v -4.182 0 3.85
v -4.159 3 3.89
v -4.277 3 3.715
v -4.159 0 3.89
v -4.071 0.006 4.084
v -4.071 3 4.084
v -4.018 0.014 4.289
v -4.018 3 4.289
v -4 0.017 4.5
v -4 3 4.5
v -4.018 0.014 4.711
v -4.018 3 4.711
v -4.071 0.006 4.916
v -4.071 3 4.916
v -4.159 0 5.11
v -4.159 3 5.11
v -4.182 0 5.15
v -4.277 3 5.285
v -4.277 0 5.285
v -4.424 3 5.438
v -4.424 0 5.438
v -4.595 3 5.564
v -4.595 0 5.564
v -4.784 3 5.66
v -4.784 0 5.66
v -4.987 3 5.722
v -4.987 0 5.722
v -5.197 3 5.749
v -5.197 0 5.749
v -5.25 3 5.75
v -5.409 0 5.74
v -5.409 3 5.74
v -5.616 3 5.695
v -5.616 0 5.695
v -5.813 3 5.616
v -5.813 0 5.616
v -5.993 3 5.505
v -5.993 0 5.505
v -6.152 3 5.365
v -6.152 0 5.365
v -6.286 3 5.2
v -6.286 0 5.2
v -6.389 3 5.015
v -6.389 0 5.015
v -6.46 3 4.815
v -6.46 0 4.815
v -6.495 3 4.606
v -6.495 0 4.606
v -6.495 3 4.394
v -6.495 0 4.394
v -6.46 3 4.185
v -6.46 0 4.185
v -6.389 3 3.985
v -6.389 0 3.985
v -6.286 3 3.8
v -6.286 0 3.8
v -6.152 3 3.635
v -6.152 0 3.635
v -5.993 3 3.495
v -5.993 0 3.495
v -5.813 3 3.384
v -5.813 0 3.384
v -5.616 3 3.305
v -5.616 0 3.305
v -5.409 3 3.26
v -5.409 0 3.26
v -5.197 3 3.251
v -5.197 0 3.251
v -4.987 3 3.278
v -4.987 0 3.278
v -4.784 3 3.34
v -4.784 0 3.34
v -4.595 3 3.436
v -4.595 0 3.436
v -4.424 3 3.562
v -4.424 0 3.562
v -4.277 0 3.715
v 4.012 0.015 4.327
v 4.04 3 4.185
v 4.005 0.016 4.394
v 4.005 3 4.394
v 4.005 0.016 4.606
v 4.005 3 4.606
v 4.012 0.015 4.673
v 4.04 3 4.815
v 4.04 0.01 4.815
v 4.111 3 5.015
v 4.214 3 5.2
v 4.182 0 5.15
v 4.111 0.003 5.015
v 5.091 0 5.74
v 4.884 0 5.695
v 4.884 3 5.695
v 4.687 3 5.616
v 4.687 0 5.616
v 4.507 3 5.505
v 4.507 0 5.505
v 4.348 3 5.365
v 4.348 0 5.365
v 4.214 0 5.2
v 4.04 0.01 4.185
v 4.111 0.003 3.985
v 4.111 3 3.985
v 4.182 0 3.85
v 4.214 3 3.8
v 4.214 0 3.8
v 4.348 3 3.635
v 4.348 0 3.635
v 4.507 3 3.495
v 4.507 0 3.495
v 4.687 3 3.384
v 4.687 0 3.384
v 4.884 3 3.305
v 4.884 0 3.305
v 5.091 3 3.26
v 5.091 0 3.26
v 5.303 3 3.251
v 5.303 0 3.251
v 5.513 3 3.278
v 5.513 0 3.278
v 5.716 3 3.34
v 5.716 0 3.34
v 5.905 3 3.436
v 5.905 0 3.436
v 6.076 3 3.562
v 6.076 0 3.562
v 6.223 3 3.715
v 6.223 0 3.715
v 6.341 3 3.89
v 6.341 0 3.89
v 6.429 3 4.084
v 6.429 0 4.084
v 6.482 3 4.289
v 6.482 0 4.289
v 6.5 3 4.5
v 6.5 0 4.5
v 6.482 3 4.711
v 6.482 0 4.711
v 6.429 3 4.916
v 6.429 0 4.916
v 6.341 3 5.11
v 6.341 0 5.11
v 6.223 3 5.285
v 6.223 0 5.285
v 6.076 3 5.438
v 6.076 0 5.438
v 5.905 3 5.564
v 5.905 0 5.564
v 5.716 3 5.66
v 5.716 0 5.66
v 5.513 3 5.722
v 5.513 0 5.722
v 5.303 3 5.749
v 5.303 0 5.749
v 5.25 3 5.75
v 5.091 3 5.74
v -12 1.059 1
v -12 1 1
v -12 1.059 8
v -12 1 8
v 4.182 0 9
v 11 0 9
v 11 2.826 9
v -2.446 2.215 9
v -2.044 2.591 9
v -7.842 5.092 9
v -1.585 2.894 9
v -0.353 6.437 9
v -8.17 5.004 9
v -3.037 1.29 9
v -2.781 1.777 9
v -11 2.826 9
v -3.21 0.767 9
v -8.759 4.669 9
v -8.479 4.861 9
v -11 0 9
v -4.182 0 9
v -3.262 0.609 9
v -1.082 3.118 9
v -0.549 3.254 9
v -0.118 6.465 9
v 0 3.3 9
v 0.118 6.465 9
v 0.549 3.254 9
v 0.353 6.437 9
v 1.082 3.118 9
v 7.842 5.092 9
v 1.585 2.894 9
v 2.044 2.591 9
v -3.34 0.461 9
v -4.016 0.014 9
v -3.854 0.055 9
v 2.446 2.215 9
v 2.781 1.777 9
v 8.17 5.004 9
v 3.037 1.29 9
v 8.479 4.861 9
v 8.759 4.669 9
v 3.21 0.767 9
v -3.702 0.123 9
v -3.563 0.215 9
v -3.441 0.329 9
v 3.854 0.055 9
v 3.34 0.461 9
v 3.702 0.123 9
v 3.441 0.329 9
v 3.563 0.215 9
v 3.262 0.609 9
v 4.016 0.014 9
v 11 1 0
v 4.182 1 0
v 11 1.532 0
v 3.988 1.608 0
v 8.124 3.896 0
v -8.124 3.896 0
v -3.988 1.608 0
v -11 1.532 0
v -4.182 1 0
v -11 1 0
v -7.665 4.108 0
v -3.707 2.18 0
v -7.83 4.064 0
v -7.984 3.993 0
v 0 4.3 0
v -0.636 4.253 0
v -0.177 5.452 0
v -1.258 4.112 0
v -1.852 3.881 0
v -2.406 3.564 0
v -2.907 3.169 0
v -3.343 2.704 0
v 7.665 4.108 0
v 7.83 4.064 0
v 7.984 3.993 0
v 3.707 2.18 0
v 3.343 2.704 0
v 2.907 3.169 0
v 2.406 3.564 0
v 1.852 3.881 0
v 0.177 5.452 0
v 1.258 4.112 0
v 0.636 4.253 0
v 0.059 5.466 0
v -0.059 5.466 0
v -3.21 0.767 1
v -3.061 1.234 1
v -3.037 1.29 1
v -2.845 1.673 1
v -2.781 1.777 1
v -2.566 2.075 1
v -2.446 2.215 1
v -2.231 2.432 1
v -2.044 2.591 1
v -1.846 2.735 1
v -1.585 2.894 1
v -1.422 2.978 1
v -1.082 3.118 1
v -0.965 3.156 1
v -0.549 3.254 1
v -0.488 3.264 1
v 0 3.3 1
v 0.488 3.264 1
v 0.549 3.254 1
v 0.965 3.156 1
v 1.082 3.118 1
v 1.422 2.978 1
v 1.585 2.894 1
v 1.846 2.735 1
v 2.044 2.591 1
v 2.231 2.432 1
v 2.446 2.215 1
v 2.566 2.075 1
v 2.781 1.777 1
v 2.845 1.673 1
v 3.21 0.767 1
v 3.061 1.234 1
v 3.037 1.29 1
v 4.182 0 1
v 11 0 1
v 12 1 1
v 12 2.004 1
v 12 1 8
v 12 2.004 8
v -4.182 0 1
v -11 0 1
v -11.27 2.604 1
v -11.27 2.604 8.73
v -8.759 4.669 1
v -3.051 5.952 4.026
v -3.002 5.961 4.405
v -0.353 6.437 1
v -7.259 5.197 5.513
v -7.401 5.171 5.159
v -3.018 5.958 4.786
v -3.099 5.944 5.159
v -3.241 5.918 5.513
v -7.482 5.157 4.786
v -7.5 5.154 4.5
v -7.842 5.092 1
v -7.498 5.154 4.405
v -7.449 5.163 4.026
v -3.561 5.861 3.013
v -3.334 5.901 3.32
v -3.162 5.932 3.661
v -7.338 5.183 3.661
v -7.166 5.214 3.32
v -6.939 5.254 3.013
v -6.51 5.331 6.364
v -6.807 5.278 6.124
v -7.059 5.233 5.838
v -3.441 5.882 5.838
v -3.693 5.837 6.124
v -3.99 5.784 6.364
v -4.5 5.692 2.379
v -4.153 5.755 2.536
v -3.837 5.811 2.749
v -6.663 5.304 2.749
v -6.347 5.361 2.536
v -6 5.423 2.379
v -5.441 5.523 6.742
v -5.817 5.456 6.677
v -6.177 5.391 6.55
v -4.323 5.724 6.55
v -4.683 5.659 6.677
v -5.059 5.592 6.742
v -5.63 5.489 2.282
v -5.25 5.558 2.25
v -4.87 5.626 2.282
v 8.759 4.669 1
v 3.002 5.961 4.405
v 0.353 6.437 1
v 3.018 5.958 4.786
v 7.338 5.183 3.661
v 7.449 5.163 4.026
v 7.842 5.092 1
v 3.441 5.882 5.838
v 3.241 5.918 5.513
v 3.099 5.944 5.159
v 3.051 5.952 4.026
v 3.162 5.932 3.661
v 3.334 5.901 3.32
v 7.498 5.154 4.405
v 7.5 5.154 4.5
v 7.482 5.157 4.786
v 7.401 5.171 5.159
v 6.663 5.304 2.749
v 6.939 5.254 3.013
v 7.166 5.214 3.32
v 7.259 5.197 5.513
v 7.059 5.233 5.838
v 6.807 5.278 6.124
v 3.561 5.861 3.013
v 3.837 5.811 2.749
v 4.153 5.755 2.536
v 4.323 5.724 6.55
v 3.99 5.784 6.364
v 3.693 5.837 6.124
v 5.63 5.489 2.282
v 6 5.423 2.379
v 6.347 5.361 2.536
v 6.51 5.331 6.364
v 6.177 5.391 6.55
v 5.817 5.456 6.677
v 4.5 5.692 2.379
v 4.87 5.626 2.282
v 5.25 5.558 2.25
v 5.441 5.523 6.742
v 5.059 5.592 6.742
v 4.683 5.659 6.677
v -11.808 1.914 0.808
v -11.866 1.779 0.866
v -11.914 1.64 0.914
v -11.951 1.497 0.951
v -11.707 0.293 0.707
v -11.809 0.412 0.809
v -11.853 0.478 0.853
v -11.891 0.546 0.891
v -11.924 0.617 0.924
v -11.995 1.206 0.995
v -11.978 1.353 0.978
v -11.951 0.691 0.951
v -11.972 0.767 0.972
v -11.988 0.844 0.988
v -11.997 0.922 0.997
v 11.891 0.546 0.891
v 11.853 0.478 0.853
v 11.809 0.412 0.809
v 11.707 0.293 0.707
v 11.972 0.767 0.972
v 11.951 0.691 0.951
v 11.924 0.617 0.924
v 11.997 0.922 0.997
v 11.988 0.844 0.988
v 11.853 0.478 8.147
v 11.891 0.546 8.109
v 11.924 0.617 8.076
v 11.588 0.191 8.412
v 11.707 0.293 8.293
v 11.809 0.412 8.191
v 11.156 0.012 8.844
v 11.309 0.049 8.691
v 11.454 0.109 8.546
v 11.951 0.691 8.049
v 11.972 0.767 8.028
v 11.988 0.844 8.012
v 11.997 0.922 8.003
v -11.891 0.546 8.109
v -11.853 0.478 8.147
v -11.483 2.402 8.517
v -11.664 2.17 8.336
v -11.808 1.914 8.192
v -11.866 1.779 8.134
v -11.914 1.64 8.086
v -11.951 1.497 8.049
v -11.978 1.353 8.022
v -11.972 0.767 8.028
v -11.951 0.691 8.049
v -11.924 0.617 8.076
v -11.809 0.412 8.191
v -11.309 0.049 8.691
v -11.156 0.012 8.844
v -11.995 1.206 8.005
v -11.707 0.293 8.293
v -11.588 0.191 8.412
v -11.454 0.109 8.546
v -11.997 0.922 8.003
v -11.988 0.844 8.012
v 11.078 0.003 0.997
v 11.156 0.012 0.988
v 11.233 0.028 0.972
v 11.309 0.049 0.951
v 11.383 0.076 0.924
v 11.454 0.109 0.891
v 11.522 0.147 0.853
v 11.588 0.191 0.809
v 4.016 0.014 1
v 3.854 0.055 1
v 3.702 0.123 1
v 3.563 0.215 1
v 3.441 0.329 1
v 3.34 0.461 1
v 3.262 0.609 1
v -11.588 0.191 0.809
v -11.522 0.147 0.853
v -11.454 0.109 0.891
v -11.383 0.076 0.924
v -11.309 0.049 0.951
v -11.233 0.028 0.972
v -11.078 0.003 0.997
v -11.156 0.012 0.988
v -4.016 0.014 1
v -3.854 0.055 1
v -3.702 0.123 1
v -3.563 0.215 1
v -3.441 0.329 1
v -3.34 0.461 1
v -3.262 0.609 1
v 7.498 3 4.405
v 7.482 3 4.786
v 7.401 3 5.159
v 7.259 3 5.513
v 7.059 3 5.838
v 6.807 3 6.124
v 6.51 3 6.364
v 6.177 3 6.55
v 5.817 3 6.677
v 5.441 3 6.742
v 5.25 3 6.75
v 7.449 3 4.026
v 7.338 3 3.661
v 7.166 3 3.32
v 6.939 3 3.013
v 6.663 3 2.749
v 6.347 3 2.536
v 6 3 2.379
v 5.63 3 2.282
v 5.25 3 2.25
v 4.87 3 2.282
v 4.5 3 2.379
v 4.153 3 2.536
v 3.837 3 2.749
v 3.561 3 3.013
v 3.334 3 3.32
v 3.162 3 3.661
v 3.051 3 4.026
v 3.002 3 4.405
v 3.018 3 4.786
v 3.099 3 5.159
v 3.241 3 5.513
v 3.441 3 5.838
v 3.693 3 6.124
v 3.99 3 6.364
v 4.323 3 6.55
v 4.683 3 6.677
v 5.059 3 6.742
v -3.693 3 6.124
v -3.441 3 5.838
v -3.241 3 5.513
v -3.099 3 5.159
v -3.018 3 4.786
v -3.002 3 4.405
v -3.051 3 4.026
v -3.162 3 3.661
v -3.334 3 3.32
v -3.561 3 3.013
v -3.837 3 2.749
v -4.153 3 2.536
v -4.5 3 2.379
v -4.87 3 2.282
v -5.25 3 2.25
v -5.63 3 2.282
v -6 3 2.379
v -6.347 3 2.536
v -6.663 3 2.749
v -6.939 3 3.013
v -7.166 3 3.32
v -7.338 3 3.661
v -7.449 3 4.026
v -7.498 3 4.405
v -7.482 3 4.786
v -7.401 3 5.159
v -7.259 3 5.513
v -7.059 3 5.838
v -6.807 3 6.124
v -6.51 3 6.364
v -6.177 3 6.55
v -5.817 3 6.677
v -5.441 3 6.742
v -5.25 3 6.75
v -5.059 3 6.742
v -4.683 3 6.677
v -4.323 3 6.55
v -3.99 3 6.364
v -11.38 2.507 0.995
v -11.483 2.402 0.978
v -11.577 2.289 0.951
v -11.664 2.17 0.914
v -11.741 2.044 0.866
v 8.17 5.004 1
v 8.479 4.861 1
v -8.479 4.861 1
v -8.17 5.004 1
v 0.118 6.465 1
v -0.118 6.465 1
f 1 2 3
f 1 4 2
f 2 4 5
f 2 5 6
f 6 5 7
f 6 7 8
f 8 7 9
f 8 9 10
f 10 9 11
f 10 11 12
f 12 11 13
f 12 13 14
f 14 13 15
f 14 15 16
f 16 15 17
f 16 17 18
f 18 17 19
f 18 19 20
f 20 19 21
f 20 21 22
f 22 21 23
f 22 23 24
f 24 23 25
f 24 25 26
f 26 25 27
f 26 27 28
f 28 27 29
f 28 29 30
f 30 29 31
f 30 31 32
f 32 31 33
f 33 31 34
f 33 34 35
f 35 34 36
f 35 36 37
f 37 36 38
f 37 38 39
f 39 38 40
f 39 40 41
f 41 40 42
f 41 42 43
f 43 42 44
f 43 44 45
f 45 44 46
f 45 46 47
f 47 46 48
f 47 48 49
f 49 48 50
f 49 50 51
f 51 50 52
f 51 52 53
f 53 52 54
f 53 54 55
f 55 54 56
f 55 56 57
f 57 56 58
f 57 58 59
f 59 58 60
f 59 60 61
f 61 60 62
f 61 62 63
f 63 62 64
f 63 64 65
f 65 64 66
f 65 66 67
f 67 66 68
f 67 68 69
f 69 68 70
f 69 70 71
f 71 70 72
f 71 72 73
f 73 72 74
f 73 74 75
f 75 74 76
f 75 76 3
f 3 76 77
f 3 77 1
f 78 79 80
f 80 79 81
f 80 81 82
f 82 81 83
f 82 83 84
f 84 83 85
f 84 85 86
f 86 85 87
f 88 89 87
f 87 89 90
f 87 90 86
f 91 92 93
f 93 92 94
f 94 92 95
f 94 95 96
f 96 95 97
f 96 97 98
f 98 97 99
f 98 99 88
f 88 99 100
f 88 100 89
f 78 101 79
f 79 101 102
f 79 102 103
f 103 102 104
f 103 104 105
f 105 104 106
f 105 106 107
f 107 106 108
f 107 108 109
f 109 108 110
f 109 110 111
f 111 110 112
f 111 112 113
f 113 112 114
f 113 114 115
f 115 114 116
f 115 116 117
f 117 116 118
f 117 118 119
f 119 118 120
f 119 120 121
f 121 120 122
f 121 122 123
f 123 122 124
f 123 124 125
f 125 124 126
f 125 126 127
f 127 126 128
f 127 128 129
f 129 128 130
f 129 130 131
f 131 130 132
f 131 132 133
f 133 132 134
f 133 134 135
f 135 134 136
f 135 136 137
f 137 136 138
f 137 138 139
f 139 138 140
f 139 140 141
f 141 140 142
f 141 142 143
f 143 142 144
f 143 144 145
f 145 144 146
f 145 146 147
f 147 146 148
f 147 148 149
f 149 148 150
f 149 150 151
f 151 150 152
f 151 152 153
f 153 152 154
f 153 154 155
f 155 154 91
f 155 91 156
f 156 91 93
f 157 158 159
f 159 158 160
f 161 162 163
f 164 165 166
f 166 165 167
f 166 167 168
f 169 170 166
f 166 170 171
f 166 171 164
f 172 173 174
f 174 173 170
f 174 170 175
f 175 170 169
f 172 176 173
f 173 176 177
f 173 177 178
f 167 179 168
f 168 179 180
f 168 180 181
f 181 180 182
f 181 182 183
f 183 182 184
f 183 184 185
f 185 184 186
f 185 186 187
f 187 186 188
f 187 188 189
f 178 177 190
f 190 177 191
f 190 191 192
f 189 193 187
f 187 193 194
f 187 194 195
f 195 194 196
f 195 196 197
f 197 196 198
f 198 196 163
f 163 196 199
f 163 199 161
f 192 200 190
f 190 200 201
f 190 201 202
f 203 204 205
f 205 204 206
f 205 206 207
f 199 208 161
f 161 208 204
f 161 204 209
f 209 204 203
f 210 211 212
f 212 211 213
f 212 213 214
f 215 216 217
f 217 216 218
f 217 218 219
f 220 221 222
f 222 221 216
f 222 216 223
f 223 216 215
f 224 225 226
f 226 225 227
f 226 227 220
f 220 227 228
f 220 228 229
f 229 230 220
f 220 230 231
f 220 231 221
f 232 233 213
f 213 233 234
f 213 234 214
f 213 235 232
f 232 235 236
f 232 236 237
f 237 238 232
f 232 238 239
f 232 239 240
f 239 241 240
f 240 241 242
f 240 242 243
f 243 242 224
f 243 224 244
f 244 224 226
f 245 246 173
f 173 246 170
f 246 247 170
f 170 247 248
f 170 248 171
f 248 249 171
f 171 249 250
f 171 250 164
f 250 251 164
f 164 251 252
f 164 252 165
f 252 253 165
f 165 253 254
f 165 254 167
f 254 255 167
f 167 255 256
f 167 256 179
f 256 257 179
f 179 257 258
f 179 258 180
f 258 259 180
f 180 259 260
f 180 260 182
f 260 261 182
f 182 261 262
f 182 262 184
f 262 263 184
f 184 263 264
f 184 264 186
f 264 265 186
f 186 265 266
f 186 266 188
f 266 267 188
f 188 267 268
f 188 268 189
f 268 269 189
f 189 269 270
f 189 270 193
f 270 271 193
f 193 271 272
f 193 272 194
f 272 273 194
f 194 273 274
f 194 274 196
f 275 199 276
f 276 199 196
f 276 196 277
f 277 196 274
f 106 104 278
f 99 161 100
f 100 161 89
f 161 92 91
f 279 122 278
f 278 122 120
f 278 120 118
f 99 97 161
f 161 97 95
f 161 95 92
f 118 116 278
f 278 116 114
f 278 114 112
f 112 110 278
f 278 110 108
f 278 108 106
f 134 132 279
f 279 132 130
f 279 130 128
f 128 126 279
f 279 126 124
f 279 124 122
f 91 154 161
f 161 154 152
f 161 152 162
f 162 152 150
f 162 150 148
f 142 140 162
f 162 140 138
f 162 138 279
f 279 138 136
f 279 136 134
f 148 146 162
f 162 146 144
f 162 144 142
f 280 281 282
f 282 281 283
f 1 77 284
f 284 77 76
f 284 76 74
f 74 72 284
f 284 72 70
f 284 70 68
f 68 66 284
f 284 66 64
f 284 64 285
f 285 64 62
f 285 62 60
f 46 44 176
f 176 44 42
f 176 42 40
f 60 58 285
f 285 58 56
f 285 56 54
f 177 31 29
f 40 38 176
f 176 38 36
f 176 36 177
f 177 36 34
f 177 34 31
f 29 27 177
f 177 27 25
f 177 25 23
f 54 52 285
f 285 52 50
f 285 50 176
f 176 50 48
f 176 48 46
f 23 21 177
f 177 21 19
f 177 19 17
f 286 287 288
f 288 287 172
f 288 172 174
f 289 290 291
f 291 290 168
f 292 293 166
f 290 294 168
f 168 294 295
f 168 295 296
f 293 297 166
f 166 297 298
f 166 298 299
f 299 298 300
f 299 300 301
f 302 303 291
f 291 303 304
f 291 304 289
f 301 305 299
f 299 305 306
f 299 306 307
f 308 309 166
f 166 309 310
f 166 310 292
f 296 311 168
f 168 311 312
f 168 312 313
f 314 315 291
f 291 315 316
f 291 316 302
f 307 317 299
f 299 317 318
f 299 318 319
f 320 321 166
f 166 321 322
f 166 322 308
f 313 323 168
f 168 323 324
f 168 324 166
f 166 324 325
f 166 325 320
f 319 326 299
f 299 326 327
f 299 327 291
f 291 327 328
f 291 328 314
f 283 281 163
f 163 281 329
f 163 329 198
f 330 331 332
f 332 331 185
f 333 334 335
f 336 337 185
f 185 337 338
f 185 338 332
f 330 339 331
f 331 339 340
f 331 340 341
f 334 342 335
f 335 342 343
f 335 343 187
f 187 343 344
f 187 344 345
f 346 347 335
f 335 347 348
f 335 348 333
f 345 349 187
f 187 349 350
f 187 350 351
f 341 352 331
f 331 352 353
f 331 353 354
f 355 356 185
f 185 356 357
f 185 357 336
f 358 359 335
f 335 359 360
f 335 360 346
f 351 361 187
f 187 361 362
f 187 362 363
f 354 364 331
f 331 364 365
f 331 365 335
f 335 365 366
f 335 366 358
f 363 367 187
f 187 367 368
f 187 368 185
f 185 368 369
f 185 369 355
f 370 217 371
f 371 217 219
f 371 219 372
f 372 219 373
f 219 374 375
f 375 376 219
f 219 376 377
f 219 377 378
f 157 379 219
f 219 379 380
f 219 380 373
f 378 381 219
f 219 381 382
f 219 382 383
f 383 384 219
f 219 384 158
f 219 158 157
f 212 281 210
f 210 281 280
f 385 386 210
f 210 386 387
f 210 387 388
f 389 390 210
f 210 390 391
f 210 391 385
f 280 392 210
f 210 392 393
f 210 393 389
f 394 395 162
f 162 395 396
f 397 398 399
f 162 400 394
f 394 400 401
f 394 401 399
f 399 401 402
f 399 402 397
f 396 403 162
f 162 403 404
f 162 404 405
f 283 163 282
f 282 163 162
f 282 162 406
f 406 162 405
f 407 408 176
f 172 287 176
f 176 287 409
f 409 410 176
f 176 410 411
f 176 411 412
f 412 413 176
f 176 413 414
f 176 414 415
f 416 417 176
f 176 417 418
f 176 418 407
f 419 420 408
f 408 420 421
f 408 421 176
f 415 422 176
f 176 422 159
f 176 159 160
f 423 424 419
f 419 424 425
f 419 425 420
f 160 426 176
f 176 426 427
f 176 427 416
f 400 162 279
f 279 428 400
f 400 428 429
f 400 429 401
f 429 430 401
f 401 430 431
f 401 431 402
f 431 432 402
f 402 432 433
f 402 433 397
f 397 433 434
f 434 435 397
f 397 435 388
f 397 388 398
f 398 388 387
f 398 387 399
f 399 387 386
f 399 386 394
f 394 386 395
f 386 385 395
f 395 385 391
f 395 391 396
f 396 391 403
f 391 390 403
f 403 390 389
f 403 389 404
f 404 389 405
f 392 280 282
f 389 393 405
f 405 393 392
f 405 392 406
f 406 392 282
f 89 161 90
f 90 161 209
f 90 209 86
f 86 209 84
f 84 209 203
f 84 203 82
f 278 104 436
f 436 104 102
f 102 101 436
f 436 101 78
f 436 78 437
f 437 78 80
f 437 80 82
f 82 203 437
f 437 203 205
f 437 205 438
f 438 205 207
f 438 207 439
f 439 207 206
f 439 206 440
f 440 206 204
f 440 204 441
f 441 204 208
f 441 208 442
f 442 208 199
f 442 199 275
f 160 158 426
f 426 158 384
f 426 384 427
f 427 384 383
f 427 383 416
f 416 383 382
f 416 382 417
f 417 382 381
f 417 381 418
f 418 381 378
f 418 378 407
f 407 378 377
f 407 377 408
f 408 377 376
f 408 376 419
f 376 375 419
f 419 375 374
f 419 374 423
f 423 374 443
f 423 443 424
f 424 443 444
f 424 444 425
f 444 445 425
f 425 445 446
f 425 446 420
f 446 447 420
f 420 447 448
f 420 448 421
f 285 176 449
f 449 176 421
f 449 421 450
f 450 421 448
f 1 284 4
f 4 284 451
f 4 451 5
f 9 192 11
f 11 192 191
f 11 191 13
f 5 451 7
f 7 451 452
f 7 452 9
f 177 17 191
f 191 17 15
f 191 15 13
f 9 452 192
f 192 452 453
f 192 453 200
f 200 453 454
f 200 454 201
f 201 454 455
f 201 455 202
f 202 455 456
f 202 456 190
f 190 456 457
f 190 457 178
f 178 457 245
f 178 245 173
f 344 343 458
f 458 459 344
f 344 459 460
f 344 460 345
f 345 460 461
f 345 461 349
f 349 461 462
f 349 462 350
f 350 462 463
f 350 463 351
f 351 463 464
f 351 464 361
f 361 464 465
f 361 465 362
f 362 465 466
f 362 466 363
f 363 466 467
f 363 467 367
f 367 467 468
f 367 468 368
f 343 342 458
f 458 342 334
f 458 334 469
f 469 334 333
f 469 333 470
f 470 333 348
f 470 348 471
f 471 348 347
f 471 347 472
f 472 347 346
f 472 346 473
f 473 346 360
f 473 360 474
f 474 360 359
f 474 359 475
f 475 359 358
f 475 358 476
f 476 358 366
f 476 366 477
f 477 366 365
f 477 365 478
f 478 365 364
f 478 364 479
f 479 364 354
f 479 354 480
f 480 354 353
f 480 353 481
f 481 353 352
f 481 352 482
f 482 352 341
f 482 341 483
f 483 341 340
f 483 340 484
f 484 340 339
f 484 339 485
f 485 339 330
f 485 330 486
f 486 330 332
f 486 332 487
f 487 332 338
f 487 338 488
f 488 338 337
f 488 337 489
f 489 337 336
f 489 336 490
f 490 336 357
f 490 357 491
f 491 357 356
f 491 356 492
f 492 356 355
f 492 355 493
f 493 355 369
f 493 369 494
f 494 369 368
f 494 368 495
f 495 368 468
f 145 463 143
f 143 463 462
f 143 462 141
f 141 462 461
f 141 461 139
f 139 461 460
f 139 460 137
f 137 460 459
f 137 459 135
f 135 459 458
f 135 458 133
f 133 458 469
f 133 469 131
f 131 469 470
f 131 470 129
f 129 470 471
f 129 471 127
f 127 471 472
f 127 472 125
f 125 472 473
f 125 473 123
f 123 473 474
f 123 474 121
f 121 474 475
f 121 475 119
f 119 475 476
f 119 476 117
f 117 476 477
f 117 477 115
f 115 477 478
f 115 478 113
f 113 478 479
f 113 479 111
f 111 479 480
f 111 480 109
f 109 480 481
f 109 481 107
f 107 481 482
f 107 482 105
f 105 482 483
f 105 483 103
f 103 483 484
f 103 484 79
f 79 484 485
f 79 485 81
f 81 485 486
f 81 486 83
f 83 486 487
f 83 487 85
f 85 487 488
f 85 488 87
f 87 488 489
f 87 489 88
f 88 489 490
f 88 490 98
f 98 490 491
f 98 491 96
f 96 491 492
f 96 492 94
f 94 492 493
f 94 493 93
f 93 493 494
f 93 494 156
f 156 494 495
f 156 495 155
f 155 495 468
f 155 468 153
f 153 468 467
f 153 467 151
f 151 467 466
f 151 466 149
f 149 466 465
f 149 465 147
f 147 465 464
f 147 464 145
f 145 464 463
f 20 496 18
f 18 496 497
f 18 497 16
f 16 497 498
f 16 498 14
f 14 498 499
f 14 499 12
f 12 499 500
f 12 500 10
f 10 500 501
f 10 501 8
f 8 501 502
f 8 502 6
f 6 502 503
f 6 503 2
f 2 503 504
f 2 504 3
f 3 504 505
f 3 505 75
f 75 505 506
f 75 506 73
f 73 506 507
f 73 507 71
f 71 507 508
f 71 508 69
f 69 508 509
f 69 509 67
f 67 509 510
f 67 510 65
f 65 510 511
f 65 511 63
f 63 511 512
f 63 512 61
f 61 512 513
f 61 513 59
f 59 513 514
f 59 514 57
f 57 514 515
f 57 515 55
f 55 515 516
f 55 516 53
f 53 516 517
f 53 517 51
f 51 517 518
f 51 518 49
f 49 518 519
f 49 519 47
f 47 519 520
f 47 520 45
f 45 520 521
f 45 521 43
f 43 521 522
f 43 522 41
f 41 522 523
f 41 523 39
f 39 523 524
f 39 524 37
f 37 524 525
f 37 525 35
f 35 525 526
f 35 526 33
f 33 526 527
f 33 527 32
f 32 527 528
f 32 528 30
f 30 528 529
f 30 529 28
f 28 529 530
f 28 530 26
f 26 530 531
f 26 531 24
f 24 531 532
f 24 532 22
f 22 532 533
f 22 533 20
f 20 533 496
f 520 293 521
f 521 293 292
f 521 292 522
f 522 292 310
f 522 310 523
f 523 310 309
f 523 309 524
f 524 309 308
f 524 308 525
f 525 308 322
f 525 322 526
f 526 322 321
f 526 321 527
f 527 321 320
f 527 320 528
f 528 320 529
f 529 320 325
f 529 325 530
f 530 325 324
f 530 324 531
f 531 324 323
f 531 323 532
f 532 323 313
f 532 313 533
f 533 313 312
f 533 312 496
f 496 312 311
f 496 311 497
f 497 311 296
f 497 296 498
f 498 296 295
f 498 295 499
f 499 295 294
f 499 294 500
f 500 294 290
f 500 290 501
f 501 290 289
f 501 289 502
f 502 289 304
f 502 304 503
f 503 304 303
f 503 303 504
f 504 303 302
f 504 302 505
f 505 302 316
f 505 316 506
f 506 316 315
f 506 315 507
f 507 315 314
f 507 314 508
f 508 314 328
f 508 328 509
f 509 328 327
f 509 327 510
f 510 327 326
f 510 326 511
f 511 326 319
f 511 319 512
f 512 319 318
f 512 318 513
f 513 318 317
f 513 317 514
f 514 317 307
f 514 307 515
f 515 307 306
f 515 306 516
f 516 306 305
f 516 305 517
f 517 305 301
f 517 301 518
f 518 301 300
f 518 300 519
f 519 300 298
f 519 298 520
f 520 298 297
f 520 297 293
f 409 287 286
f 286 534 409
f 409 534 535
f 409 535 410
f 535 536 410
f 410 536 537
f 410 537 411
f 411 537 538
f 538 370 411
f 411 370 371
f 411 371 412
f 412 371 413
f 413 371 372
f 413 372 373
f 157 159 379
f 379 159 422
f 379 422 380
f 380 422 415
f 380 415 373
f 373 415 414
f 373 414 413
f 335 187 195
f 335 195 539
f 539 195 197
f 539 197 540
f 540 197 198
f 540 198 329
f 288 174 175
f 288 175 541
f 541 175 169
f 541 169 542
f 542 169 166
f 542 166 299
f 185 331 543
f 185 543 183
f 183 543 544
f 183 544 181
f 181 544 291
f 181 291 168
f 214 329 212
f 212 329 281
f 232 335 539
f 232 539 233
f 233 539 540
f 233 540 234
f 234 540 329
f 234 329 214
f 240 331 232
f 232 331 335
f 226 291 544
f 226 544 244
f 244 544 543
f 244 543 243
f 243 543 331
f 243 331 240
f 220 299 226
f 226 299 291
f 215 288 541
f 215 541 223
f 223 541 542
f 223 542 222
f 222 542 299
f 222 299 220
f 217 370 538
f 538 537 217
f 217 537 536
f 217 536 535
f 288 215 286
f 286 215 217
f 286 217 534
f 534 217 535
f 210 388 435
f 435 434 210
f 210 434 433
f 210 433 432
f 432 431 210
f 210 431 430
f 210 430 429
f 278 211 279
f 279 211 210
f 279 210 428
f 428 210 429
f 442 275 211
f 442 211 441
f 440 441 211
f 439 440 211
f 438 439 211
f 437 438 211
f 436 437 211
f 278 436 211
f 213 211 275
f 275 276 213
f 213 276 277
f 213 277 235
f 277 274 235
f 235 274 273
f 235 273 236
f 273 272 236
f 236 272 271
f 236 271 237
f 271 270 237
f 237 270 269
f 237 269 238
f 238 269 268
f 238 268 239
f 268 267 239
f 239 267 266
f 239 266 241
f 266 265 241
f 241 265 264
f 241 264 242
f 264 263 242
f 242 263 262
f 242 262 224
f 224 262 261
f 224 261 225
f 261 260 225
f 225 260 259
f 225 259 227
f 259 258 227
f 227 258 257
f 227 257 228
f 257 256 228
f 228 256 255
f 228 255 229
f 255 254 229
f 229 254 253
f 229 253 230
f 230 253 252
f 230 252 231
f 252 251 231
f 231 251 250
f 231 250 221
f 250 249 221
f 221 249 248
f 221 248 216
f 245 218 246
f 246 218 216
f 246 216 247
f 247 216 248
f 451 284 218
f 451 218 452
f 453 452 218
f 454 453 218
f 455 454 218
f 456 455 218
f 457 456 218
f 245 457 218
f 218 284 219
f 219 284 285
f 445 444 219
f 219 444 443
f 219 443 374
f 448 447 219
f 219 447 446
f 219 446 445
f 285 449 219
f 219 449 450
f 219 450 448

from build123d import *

# Parameters (mm, degrees)
BOSS_EXTRUDE1_DEPTH     = 9
CUT_EXTRUDE1_DEPTH      = 17.347782724
CUT_EXTRUDE1_DEPTH_BACK = 17.347782724
CHAMFER1_SIZE           = 1
FILLET3_R               = 1
SKETCH4_R               = 1.25
CUT_EXTRUDE2_DEPTH      = 17.347782724
CUT_EXTRUDE3_START      = 3
SKETCH5_R               = 2.25
CUT_EXTRUDE3_DEPTH      = 10
FILLET2_R               = 2
CHAMFER2_SIZE           = 1


with BuildPart() as part:
    # Sketch1 → Boss-Extrude1 (new body)
    with BuildSketch(Plane.XY):
        with BuildLine():
            Line((-3.3, 0), (-12, 0))
            Line((-12, 0), (-12, 6.5))
            Line((-12, 6.5), (12, 6.5))
            Line((12, 6.5), (12, 0))
            Line((12, 0), (3.3, 0))
            ThreePointArc((3.3, 0), (0, 3.3), (-3.3, 0))
        make_face()
    extrude(amount=BOSS_EXTRUDE1_DEPTH)

    # Sketch2 → Cut-Extrude1 (cut, two sides: drawn at the far end of the back side and taken through both)
    with BuildSketch(Plane.XY.offset(9).offset(-CUT_EXTRUDE1_DEPTH_BACK)):
        Polygon((-8.355690819, 5), (0, 6.5), (-12, 6.5), (-12, 2.004439372), align=None)
        Polygon((12, 6.5), (0, 6.5), (8.355690819, 5), (12, 2.004439372), align=None)
    extrude(amount=CUT_EXTRUDE1_DEPTH + CUT_EXTRUDE1_DEPTH_BACK, mode=Mode.SUBTRACT)

    # Chamfer1
    chamfer1_edges = [part.edges().sort_by_distance(p)[0] for p in [
        (12, 1.002219686, 9),
        (-12, 1.002219686, 0),
        (-12, 1.002219686, 9),
        (12, 1.002219686, 0),
    ]]
    chamfer(chamfer1_edges, length=CHAMFER1_SIZE)

    # Fillet3
    fillet3_edges = [part.edges().sort_by_distance(p)[0] for p in [
        (12, 0, 4.5),
        (3.3, 0, 4.5),
        (-12, 0, 4.5),
        (-3.3, 0, 4.5),
    ]]
    fillet(fillet3_edges, radius=FILLET3_R)

    # Sketch4 → Cut-Extrude2 (cut, through all)
    with BuildSketch(Plane.XZ):
        with Locations(Location((-5.25, 4.5, 0), (0, 0, 31.315725107))):
            Circle(SKETCH4_R)
        with Locations((5.25, 4.5)):
            Circle(SKETCH4_R)
    extrude(amount=-CUT_EXTRUDE2_DEPTH, mode=Mode.SUBTRACT)

    # Sketch5 → Cut-Extrude3 (cut)
    with BuildSketch(Plane(origin=(0, 0, 0), x_dir=(1, 0, 0), z_dir=(0, 1, 0)).offset(CUT_EXTRUDE3_START)):
        with Locations(Location((-5.25, -4.5, 0), (0, 0, 180))):
            Circle(SKETCH5_R)
        with Locations((5.25, -4.5)):
            Circle(SKETCH5_R)
    extrude(amount=CUT_EXTRUDE3_DEPTH, mode=Mode.SUBTRACT)

    # Fillet2
    fillet2_edges = [part.edges().sort_by_distance(p)[0] for p in [
        (8.355690819, 5, 4.5),
        (-8.355690819, 5, 4.5),
        (0, 6.5, 4.5),
        (-12, 2.004439372, 4.5),
    ]]
    fillet(fillet2_edges, radius=FILLET2_R)

    # Chamfer2
    chamfer2_edges = [part.edges().sort_by_distance(p)[0] for p in [
        (7.591052367, 0, 0),
        (3.562652612, 0.214965561, 0),
        (0, 3.3, 0),
        (-3.562652612, 0.214965561, 0),
        (-7.591052367, 0, 0),
    ]]
    chamfer(chamfer2_edges, length=CHAMFER2_SIZE)
    # the kernel refuses this chamfer: 1 mm, written as the material it takes off along each edge
    with BuildSketch(Plane(origin=(8.758751871, 4.668690619, 0), x_dir=(-0.6347551060767181, -0.7722240167716554, -0.02749587661058638), z_dir=(0.7725160920418075, -0.6349951870183377, 0)), Plane(origin=(-12.986666492, 1.193416171, 0), x_dir=(0.6347551060767181, -0.7722240167716553, -0.02749587661058636), z_dir=(0.7725160920418074, 0.6349951870183378, 0))) as chamfer2_2_piece_1:
        with BuildLine():
            Line((1.028673195, 0), (-0.056547155, -1.027117794))
            Line((-0.056547155, -1.027117794), (-0.076539593, -1.026567876))
            ThreePointArc((-0.076539593, -1.026567876), (-0.034129227, -0.51339783), (-0.019992438, 0.000549918))
            Line((-0.019992438, 0.000549918), (0.000549918, 0.019992438))
            ThreePointArc((0.000549918, 0.019992438), (0.514497665, 0.00585565), (1.029223113, 0.019992438))
            Line((1.029223113, 0.019992438), (1.028673195, 0))
        make_face()
    extrude(amount=5.472914628, mode=Mode.SUBTRACT)
    with BuildSketch(Plane(origin=(7.488761497, 3.123658435, 0), x_dir=(0.6349951870183373, 0.7725160920418078, 0), z_dir=(0.7725160920418078, -0.6349951870183373, 0))) as chamfer2_2_piece_2:
        with BuildLine():
            Line((0.971715729, -0.028284271), (2.028284271, 1.028284271))
            Line((2.028284271, 1.028284271), (2.048284271, 1.028284271))
            ThreePointArc((2.048284271, 1.028284271), (2.02, 0.514142136), (2.02, 0))
            Line((2.02, 0), (2, -0.02))
            ThreePointArc((2, -0.02), (1.485857864, -0.02), (0.971715729, -0.048284271))
            Line((0.971715729, -0.048284271), (0.971715729, -0.028284271))
        make_face()
    revolve(axis=Axis((7.488761497, 3.123658435, 0), (0, 0, 1)), revolution_arc=29.242385329, mode=Mode.SUBTRACT)
    with BuildSketch(Plane(origin=(0.35338761, 6.436560432, 0), x_dir=(-0.176626999834447, -0.9838937339463534, -0.02749587661058635), z_dir=(0.9842658682259174, -0.17669380477391067, 0)), Plane(origin=(-7.842149107, 5.092190171, 0), x_dir=(0.17662699983444718, -0.9838937339463534, -0.027495876610586334), z_dir=(0.9842658682259174, 0.17669380477391086, 0))) as chamfer2_2_piece_3:
        with BuildLine():
            Line((1.028673195, 0), (-0.056547155, -1.027117794))
            Line((-0.056547155, -1.027117794), (-0.076539593, -1.026567876))
            ThreePointArc((-0.076539593, -1.026567876), (-0.034129227, -0.51339783), (-0.019992438, 0.000549918))
            Line((-0.019992438, 0.000549918), (0.000549918, 0.019992438))
            ThreePointArc((0.000549918, 0.019992438), (0.514497665, 0.00585565), (1.029223113, 0.019992438))
            Line((1.029223113, 0.019992438), (1.028673195, 0))
        make_face()
    extrude(amount=7.608474234, mode=Mode.SUBTRACT)
    with BuildSketch(Plane(origin=(0, 4.468028696, 0), x_dir=(0.17669380477391125, 0.9842658682259174, 0), z_dir=(0.9842658682259174, -0.17669380477391125, 0))) as chamfer2_2_piece_4:
        with BuildLine():
            Line((0.971715729, -0.028284271), (2.028284271, 1.028284271))
            Line((2.028284271, 1.028284271), (2.048284271, 1.028284271))
            ThreePointArc((2.048284271, 1.028284271), (2.02, 0.514142136), (2.02, 0))
            Line((2.02, 0), (2, -0.02))
            ThreePointArc((2, -0.02), (1.485857864, -0.02), (0.971715729, -0.048284271))
            Line((0.971715729, -0.048284271), (0.971715729, -0.028284271))
        make_face()
    revolve(axis=Axis((0, 4.468028696, 0), (0, 0, 1)), revolution_arc=20.354484339, mode=Mode.SUBTRACT)
    with BuildSketch(Plane(origin=(-7.488761497, 3.123658435, 0), x_dir=(-0.17669380477391083, 0.9842658682259176, 0), z_dir=(0.9842658682259176, 0.17669380477391083, 0))) as chamfer2_2_piece_5:
        with BuildLine():
            Line((0.971715729, -0.028284271), (2.028284271, 1.028284271))
            Line((2.028284271, 1.028284271), (2.048284271, 1.028284271))
            ThreePointArc((2.048284271, 1.028284271), (2.02, 0.514142136), (2.02, 0))
            Line((2.02, 0), (2, -0.02))
            ThreePointArc((2, -0.02), (1.485857864, -0.02), (0.971715729, -0.048284271))
            Line((0.971715729, -0.048284271), (0.971715729, -0.028284271))
        make_face()
    revolve(axis=Axis((-7.488761497, 3.123658435, 0), (0, 0, 1)), revolution_arc=29.242385329, mode=Mode.SUBTRACT)


solid = part.part
